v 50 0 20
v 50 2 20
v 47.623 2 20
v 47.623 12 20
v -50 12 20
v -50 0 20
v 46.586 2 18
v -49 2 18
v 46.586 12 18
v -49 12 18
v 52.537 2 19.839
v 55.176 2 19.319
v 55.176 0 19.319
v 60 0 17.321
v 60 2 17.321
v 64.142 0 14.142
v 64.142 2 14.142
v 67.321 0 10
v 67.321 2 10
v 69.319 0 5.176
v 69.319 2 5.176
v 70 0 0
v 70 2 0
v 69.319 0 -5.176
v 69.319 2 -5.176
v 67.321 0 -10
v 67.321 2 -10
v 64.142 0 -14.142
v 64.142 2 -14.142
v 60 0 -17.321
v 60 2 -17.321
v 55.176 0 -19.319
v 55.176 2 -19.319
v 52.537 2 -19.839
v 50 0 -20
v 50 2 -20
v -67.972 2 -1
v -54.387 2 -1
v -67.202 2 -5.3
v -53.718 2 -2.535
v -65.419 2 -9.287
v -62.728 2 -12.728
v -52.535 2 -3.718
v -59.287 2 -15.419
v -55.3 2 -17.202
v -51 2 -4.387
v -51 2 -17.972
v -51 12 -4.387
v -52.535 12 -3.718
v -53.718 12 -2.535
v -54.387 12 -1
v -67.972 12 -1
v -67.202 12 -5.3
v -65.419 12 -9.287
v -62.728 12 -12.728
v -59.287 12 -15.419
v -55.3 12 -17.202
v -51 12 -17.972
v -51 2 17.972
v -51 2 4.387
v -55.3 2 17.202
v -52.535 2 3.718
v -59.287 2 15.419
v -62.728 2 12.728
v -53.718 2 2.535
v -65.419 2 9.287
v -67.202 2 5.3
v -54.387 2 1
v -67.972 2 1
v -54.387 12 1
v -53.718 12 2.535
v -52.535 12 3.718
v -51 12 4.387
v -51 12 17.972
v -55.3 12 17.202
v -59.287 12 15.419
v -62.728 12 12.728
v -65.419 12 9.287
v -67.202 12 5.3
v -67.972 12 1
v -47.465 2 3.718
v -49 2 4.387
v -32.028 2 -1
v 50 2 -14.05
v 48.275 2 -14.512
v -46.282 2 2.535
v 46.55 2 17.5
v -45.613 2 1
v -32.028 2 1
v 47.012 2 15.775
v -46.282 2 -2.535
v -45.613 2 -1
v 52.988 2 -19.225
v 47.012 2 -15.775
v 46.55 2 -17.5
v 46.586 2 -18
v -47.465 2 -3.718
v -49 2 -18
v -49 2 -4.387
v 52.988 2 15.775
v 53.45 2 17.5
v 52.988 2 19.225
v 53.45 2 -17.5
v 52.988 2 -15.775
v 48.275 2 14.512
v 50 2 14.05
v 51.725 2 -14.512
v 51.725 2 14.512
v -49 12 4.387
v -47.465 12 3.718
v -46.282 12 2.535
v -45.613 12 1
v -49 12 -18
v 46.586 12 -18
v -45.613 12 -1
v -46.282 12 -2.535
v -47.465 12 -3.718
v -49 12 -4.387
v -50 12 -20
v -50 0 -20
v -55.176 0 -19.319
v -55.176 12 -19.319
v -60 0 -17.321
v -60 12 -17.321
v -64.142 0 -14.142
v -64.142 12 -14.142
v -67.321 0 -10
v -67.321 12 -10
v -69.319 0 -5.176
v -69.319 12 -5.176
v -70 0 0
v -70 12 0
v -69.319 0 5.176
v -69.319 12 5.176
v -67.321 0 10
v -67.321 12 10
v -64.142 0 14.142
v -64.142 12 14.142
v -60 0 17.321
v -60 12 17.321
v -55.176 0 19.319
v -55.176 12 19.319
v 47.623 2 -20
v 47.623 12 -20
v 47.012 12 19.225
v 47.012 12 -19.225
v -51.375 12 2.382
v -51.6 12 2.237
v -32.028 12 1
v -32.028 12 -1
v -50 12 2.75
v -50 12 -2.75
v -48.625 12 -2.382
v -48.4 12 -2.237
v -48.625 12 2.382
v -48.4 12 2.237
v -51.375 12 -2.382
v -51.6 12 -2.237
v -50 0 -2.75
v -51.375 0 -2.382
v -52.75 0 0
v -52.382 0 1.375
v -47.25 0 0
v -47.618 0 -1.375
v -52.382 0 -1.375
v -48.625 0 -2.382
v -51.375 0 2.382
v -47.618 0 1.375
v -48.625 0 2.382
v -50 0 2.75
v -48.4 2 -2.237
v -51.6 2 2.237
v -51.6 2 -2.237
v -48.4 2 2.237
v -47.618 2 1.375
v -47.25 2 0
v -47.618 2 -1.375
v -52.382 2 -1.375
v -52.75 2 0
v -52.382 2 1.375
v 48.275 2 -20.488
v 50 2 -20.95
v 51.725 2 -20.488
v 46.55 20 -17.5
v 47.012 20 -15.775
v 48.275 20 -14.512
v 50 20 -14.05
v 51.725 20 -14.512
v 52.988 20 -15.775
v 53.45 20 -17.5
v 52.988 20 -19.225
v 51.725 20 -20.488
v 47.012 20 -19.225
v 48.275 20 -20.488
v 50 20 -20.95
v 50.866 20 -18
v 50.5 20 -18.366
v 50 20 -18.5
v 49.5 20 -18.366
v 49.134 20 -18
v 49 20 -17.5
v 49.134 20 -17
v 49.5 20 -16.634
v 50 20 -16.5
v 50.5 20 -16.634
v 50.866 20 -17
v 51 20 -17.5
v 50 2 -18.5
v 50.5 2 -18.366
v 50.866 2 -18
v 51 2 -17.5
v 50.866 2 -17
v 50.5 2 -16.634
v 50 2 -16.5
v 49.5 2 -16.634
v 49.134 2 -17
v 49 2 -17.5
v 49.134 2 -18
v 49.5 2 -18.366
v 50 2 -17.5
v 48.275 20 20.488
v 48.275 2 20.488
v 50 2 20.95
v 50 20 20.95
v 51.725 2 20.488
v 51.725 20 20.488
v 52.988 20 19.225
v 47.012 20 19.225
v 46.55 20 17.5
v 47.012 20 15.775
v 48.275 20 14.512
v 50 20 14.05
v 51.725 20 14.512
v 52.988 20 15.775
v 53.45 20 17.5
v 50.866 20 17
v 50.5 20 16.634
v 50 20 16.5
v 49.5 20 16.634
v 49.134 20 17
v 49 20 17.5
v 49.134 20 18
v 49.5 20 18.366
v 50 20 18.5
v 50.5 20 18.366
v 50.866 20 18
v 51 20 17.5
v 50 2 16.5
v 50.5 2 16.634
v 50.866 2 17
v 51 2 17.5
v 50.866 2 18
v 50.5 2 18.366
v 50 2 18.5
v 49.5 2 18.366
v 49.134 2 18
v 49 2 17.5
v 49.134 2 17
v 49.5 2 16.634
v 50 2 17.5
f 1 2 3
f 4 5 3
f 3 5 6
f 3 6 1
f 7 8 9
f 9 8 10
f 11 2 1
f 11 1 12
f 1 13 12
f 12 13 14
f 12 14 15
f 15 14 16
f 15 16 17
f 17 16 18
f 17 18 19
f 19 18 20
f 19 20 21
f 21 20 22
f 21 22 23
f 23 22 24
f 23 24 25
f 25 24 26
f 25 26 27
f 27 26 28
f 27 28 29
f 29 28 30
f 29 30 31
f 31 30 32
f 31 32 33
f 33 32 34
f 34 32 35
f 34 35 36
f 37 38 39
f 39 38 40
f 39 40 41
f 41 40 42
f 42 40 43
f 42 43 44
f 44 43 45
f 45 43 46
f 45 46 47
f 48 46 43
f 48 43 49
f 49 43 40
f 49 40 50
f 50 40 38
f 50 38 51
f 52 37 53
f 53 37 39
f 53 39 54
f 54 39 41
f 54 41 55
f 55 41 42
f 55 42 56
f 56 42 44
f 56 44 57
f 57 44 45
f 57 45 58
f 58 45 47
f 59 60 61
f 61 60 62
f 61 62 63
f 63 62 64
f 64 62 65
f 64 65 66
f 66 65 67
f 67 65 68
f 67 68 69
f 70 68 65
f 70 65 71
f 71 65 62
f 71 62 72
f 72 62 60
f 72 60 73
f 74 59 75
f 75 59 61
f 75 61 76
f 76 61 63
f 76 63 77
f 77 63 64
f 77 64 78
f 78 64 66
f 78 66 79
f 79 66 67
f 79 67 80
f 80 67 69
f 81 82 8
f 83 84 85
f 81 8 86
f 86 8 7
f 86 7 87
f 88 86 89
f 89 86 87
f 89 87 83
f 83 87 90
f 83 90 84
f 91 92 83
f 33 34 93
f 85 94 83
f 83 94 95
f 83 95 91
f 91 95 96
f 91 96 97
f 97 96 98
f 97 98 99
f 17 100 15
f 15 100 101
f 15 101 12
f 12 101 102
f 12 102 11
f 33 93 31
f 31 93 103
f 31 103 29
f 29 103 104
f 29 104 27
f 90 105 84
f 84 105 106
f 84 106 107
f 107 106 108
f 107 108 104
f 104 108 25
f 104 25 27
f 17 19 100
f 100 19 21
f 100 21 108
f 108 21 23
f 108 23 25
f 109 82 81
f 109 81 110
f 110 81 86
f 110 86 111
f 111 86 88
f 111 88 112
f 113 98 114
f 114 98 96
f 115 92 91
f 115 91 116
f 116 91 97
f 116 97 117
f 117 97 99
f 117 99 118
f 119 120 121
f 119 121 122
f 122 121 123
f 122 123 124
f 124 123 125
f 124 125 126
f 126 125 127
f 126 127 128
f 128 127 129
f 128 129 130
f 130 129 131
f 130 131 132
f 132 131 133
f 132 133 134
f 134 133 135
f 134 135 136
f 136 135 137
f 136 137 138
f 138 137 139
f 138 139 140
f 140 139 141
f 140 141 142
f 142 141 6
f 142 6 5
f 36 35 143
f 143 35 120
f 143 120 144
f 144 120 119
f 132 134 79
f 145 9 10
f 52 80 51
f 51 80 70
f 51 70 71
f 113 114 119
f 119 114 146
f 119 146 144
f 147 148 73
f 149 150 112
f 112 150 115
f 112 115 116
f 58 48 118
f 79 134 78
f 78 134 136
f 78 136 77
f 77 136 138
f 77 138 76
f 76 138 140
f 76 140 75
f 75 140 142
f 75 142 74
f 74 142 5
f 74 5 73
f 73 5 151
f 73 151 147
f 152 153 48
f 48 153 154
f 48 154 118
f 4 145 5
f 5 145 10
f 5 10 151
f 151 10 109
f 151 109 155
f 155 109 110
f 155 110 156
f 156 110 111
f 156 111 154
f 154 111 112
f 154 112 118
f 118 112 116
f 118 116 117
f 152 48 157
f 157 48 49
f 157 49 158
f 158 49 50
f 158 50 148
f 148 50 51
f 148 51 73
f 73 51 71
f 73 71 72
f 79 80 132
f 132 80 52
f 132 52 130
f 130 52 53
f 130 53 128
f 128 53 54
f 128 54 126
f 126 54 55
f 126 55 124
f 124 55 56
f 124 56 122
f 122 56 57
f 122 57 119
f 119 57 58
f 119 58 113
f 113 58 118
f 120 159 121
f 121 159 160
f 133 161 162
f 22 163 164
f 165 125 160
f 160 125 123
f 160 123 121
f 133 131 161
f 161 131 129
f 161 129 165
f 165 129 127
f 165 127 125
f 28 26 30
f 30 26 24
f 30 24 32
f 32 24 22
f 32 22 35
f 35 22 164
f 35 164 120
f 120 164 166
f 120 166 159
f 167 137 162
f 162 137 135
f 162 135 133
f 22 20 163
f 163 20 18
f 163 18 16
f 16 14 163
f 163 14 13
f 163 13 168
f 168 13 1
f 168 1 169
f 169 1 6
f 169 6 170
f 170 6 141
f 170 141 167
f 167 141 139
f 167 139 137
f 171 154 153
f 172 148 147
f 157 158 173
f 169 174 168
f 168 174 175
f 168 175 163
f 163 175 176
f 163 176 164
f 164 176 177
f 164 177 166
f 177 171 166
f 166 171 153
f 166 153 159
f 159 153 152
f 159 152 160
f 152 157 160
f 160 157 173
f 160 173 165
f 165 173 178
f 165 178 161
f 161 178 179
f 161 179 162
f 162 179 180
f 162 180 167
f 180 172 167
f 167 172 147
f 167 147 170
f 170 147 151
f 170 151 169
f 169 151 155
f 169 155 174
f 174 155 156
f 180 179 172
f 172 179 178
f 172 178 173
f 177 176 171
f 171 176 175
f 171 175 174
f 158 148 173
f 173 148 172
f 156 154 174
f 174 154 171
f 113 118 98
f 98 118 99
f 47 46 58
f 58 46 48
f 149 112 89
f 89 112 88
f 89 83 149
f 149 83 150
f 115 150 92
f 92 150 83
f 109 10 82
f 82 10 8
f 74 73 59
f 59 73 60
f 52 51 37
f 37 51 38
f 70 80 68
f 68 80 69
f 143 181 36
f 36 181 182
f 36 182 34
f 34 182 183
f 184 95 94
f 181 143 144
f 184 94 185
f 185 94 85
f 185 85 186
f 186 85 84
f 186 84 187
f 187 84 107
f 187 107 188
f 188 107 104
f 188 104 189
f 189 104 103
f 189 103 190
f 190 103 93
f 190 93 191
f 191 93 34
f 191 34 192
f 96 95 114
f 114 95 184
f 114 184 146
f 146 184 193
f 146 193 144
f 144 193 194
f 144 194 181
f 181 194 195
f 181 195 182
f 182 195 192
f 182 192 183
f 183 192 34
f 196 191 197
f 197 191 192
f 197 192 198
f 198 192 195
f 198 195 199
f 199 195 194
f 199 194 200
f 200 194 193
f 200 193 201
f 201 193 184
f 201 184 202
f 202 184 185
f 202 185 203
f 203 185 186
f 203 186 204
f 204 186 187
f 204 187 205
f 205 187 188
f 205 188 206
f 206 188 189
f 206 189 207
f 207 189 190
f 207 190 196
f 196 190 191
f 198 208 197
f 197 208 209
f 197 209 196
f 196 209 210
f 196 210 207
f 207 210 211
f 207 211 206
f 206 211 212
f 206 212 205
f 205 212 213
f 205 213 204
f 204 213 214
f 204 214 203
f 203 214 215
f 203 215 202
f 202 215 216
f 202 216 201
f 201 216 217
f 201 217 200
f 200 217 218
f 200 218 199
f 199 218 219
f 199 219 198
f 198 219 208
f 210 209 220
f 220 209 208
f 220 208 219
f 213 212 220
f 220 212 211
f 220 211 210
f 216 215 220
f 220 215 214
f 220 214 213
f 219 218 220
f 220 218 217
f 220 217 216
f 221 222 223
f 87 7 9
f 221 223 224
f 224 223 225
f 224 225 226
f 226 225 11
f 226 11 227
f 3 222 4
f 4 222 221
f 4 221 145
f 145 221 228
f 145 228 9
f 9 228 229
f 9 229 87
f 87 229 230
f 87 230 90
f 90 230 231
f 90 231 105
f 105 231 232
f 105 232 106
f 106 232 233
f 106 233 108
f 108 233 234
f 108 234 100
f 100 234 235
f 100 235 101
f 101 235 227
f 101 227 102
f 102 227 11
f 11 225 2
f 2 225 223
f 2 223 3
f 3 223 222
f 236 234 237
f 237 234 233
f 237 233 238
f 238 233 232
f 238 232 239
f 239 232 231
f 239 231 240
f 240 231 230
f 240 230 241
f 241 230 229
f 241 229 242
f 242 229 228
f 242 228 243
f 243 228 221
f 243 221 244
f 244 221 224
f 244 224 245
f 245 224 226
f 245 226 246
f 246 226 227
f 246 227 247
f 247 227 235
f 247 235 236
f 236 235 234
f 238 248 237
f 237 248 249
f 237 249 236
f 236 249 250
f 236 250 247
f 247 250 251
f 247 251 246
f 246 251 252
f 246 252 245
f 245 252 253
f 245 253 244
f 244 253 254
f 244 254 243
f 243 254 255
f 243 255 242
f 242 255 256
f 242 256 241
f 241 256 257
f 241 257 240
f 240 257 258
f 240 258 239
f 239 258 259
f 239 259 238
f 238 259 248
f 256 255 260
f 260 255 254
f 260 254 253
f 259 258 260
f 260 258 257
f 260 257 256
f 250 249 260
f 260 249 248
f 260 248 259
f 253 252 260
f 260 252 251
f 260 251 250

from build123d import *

# Parameters (mm, degrees)
BOSS_EXTRUDE1_DEPTH = 12
SHELL1_T            = -2
SKETCH3_R           = 2.75
CUT_EXTRUDE1_DEPTH  = 2
BOSS_EXTRUDE2_START = 10
SKETCH4_R           = 4.5
SKETCH4_R_2         = 2.75
BOSS_EXTRUDE2_DEPTH = 10
BOSS_EXTRUDE7_DEPTH = 10
SKETCH10_W          = 20
SKETCH10_H          = 40
CUT_EXTRUDE3_DEPTH  = 10
SKETCH9_R           = 3.45
SKETCH9_R_2         = 1
BOSS_EXTRUDE9_DEPTH = 18
CUT_EXTRUDE4_START  = -10
SKETCH11_R          = 1
CUT_EXTRUDE4_DEPTH  = 10


with BuildPart() as part:
    # Sketch1 → Boss-Extrude1 (new body)
    with BuildSketch(Plane(origin=(0, 0, 0), x_dir=(1, 0, 0), z_dir=(0, 1, 0))):
        with BuildLine():
            Line((-50, 20), (50, 20))
            ThreePointArc((50, 20), (70, 0), (50, -20))
            Line((50, -20), (-50, -20))
            ThreePointArc((-50, -20), (-70, 0), (-50, 20))
        make_face()
    extrude(amount=BOSS_EXTRUDE1_DEPTH)

    # Shell1
    shell1_openings = [part.faces().sort_by_distance(p)[0] for p in [
        (0, 12, 0),
    ]]
    offset(amount=SHELL1_T, openings=shell1_openings, kind=Kind.INTERSECTION)

    # Sketch3 → Cut-Extrude1 (cut)
    with BuildSketch(Plane(origin=(0, 2, 0), x_dir=(1, 0, 0), z_dir=(0, 1, 0))):
        with Locations(Location((-50, 0, 0), (0, 0, 270))):
            Circle(SKETCH3_R)
    extrude(amount=-CUT_EXTRUDE1_DEPTH, mode=Mode.SUBTRACT)

    # Sketch4 → Boss-Extrude2 (add)
    # profile 1 of 3: a face of its own
    with BuildSketch(Plane(origin=(0, 2, 0), x_dir=(1, 0, 0), z_dir=(0, 1, 0)).offset(BOSS_EXTRUDE2_START)):
        with Locations(Location((-50, 0, 0), (0, 0, 270))):
            Circle(SKETCH4_R)
        with Locations(Location((-50, 0, 0), (0, 0, 270))):
            Circle(SKETCH4_R_2, mode=Mode.SUBTRACT)
    # profile 2 of 3: a face of its own
    with BuildSketch(Plane(origin=(0, 2, 0), x_dir=(1, 0, 0), z_dir=(0, 1, 0)).offset(BOSS_EXTRUDE2_START)):
        with BuildLine():
            ThreePointArc((-47.25, 0), (-47.55434058, 1.257477634), (-48.4, 2.236626925))
            Line((-48.4, 2.236626925), (-48.4, -2.236626925))
            ThreePointArc((-48.4, -2.236626925), (-47.55434058, -1.257477634), (-47.25, 0))
        make_face()
    # profile 3 of 3: a face of its own
    with BuildSketch(Plane(origin=(0, 2, 0), x_dir=(1, 0, 0), z_dir=(0, 1, 0)).offset(BOSS_EXTRUDE2_START)):
        with BuildLine():
            Line((-51.6, -2.236626925), (-51.6, 2.236626925))
            ThreePointArc((-51.6, 2.236626925), (-52.75, 0), (-51.6, -2.236626925))
        make_face()
    extrude(amount=-BOSS_EXTRUDE2_DEPTH)

    # Sketch7 → Boss-Extrude7 (add)
    with BuildSketch(Plane(origin=(0, 2, 0), x_dir=(1, 0, 0), z_dir=(0, 1, 0))):
        with BuildLine():
            Line((-51, 17.972200756), (-51, 4.387482194))
            ThreePointArc((-51, 4.387482194), (-50, 4.5), (-49, 4.387482194))
            Line((-49, 4.387482194), (-49, 17.972200756))
            ThreePointArc((-49, 17.972200756), (-49.499806838, 17.993048847), (-50, 18))
            ThreePointArc((-50, 18), (-50.500193162, 17.993048847), (-51, 17.972200756))
        make_face()
        with BuildLine():
            Line((-51, 18), (-51, 17.972200756))
            ThreePointArc((-51, 17.972200756), (-50.500193162, 17.993048847), (-50, 18))
            Line((-50, 18), (-51, 18))
        make_face()
        with BuildLine():
            ThreePointArc((-50, 18), (-49.499806838, 17.993048847), (-49, 17.972200756))
            Line((-49, 17.972200756), (-49, 18))
            Line((-49, 18), (-50, 18))
        make_face()
        with BuildLine():
            Line((-32.027799244, 1), (-45.612517806, 1))
            ThreePointArc((-45.612517806, 1), (-45.528217924, 0.503155109), (-45.5, 0))
            ThreePointArc((-45.5, 0), (-45.528217924, -0.503155109), (-45.612517806, -1))
            Line((-45.612517806, -1), (-32.027799244, -1))
            ThreePointArc((-32.027799244, -1), (-32.006951153, -0.500193162), (-32, 0))
            ThreePointArc((-32, 0), (-32.006951153, 0.500193162), (-32.027799244, 1))
        make_face()
        with BuildLine():
            ThreePointArc((-49, -4.387482194), (-50, -4.5), (-51, -4.387482194))
            Line((-51, -4.387482194), (-51, -17.972200756))
            ThreePointArc((-51, -17.972200756), (-50.500193162, -17.993048847), (-50, -18))
            ThreePointArc((-50, -18), (-49.499806838, -17.993048847), (-49, -17.972200756))
            Line((-49, -17.972200756), (-49, -4.387482194))
        make_face()
        with BuildLine():
            Line((-49, -18), (-49, -17.972200756))
            ThreePointArc((-49, -17.972200756), (-49.499806838, -17.993048847), (-50, -18))
            Line((-50, -18), (-49, -18))
        make_face()
        with BuildLine():
            ThreePointArc((-54.387482194, -1), (-54.5, 0), (-54.387482194, 1))
            Line((-54.387482194, 1), (-67.972200756, 1))
            ThreePointArc((-67.972200756, 1), (-67.993048847, 0.500193146), (-68, -3.2e-08))
            ThreePointArc((-68, -3.2e-08), (-67.993048846, -0.500193178), (-67.972200756, -1))
            Line((-67.972200756, -1), (-54.387482194, -1))
        make_face()
    extrude(amount=BOSS_EXTRUDE7_DEPTH)

    # Sketch10 → Cut-Extrude3 (cut)
    with BuildSketch(Plane(origin=(0, 12, 0), x_dir=(1, 0, 0), z_dir=(0, 1, 0))):
        with Locations((60, 0)):
            Rectangle(SKETCH10_W, SKETCH10_H)
    extrude(amount=-CUT_EXTRUDE3_DEPTH, mode=Mode.SUBTRACT)

    # Sketch9 → Boss-Extrude9 (add)
    # profile 1 of 2: a face of its own
    with BuildSketch(Plane(origin=(0, 2, 0), x_dir=(1, 0, 0), z_dir=(0, 1, 0))):
        with Locations(Location((50, -17.5, 0), (0, 0, 188.333082996))):
            Circle(SKETCH9_R)
        with Locations(Location((50, -17.5, 0), (0, 0, 270))):
            Circle(SKETCH9_R_2, mode=Mode.SUBTRACT)
    # profile 2 of 2: a face of its own
    with BuildSketch(Plane(origin=(0, 2, 0), x_dir=(1, 0, 0), z_dir=(0, 1, 0))):
        with Locations(Location((50, 17.5, 0), (0, 0, 90))):
            Circle(SKETCH9_R)
        with Locations(Location((50, 17.5, 0), (0, 0, 90))):
            Circle(SKETCH9_R_2, mode=Mode.SUBTRACT)
    extrude(amount=BOSS_EXTRUDE9_DEPTH)

    # Sketch11 → Cut-Extrude4 (cut)
    with BuildSketch(Plane(origin=(0, 12, 0), x_dir=(1, 0, 0), z_dir=(0, 1, 0)).offset(CUT_EXTRUDE4_START)):
        with Locations(Location((50, 17.5, 0), (0, 0, 90))):
            Circle(SKETCH11_R)
        with Locations(Location((50, -17.5, 0), (0, 0, 270))):
            Circle(SKETCH11_R)
    extrude(amount=CUT_EXTRUDE4_DEPTH, mode=Mode.SUBTRACT)


solid = part.part
